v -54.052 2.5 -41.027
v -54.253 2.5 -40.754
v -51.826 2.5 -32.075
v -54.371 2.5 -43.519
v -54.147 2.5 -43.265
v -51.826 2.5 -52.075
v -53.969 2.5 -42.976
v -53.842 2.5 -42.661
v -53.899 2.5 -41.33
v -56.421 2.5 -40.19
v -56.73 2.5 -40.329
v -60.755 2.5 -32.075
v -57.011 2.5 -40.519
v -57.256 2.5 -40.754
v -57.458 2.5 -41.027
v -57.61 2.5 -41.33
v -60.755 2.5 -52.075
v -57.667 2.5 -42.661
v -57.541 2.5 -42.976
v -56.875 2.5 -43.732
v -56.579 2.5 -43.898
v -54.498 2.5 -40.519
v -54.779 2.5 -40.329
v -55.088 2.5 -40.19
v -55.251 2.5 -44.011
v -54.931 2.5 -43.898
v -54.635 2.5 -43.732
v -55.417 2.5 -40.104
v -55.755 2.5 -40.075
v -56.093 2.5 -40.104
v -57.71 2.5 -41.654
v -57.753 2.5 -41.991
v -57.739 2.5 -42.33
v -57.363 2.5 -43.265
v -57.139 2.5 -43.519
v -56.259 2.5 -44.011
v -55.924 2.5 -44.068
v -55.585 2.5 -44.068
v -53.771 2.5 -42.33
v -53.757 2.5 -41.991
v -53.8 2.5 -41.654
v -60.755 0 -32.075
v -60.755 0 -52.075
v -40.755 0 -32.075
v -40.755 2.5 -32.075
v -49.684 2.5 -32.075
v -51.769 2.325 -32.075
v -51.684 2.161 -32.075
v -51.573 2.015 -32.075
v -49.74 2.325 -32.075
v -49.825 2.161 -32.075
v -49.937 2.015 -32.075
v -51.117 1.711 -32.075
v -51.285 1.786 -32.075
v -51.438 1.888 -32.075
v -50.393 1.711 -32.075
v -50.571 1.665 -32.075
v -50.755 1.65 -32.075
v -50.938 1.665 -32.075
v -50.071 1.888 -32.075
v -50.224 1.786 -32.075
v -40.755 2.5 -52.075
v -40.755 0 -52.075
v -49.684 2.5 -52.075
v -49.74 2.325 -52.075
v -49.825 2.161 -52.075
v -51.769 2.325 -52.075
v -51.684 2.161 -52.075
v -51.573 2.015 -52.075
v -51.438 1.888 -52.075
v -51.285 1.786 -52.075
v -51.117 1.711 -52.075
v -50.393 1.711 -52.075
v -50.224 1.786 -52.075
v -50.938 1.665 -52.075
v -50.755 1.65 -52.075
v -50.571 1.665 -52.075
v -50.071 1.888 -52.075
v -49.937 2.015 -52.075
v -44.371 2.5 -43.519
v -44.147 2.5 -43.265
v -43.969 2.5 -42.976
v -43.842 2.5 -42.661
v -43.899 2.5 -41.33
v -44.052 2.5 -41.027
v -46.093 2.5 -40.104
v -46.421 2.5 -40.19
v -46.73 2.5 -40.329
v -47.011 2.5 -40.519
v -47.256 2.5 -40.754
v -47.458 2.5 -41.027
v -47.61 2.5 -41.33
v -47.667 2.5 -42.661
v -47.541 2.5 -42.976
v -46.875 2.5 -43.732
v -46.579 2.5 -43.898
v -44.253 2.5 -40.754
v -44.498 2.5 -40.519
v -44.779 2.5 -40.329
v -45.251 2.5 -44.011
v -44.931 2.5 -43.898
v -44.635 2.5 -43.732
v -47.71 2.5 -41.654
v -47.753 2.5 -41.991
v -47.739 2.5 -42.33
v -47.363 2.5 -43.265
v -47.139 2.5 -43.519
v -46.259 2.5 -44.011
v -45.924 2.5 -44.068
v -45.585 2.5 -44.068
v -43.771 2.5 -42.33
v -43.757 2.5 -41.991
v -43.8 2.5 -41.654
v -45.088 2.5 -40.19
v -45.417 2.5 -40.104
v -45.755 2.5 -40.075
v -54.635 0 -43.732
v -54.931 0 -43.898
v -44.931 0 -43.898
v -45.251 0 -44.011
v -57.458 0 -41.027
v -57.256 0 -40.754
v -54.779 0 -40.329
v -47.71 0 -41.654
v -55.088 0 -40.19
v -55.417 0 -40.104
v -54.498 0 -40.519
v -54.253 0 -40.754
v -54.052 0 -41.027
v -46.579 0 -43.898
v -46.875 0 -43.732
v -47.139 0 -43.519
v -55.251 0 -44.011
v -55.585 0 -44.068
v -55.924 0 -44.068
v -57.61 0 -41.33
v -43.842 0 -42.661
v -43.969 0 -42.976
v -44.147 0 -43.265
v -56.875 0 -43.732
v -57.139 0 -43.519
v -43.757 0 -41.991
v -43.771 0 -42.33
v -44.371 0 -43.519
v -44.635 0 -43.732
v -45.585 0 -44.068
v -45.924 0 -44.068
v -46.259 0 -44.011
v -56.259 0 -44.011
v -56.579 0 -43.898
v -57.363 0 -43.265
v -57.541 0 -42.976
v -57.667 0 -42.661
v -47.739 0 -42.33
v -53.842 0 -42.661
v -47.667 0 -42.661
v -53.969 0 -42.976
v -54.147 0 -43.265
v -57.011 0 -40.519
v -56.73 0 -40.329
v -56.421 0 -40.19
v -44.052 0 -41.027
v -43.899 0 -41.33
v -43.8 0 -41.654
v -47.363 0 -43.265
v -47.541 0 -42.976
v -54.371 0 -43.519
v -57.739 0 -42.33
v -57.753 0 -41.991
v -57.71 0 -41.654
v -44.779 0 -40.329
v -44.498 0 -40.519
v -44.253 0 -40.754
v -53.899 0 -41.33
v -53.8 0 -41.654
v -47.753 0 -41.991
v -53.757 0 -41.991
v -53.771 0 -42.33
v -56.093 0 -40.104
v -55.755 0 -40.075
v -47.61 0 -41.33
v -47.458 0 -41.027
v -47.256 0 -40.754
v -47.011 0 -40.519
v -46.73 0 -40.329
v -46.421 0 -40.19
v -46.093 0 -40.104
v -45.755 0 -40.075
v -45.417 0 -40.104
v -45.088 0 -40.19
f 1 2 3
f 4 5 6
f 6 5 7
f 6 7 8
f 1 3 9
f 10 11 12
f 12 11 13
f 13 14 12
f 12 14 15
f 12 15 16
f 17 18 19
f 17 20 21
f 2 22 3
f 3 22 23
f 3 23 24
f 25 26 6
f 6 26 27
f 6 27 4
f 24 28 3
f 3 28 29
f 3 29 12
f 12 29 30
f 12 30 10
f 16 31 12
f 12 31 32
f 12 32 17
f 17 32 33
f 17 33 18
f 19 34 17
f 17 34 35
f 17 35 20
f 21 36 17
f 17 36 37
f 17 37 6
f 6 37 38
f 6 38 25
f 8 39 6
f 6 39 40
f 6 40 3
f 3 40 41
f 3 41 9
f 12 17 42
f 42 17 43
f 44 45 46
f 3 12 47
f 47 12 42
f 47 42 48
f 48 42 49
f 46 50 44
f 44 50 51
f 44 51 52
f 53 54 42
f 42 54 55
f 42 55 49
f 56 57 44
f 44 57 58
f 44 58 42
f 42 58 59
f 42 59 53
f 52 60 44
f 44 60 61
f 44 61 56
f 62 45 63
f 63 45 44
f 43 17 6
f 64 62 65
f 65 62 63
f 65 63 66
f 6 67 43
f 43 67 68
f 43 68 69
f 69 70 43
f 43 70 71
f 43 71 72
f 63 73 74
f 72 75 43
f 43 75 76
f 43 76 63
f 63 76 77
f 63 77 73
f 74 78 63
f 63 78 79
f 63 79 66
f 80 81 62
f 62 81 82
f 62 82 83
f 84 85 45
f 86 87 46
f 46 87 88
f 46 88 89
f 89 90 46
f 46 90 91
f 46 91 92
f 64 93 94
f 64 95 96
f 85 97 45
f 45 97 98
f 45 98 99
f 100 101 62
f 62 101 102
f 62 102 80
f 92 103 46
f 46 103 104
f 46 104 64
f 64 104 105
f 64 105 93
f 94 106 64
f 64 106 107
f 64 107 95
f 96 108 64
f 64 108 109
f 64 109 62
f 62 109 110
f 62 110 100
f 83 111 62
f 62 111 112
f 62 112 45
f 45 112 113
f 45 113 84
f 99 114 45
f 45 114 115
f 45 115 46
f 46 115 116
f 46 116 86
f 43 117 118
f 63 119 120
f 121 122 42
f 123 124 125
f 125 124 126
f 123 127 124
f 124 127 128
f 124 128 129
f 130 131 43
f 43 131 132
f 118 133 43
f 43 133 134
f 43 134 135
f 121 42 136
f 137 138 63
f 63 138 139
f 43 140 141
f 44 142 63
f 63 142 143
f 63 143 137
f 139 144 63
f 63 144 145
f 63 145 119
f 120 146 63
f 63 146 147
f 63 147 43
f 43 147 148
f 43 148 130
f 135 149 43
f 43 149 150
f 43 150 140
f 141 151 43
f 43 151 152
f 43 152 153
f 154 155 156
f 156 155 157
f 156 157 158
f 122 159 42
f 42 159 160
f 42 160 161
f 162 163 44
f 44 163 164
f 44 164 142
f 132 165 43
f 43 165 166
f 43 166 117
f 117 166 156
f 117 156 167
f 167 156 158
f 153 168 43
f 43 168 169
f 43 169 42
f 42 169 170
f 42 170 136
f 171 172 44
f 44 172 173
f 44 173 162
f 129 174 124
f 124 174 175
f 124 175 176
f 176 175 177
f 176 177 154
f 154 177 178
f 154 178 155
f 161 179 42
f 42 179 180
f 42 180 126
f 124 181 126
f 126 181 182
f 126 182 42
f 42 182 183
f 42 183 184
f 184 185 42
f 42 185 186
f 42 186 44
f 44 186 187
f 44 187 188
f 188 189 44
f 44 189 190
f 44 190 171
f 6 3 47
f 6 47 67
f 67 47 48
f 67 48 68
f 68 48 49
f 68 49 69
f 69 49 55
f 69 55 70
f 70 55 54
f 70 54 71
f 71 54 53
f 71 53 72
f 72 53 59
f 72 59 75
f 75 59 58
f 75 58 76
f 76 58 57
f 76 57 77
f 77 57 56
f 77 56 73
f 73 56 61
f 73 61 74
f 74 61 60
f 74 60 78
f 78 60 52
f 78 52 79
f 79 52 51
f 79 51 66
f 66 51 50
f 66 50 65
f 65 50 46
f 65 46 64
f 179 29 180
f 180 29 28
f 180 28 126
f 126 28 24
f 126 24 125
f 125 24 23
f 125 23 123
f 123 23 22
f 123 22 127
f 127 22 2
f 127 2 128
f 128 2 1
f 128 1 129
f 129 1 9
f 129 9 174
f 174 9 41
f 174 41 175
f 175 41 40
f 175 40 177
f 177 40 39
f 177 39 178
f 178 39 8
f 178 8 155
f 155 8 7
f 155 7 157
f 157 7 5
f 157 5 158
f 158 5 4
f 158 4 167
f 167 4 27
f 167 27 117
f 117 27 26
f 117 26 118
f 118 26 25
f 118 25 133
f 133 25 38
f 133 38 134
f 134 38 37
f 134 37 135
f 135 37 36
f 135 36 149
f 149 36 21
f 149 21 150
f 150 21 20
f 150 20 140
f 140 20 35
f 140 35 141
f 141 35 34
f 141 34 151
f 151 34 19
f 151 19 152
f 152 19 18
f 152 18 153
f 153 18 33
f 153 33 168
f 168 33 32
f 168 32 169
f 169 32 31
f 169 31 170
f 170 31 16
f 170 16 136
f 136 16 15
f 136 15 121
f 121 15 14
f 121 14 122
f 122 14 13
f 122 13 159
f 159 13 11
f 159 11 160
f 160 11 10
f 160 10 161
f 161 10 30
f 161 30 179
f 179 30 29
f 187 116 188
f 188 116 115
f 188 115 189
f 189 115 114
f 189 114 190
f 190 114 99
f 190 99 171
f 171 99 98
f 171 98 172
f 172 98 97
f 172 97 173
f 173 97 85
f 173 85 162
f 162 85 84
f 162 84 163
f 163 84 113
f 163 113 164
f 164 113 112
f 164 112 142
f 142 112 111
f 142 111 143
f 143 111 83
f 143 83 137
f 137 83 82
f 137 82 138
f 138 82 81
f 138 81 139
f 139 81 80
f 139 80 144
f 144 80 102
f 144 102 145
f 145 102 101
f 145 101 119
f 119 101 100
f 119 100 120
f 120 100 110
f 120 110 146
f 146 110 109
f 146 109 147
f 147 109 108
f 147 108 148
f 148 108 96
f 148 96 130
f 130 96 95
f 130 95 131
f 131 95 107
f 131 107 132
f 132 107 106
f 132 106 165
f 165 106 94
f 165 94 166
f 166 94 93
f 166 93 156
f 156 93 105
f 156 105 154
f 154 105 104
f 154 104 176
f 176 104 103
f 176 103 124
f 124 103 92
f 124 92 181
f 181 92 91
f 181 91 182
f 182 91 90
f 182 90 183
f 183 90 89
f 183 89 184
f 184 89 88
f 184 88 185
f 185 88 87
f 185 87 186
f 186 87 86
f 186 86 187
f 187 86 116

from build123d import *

# Parameters (mm, degrees)
SKETCH1_W           = 20
SKETCH1_H           = 20
BOSS_EXTRUDE1_DEPTH = 2.5
SKETCH2_R           = 1.1
CUT_EXTRUDE1_DEPTH  = 21
SKETCH3_R           = 2
CUT_EXTRUDE2_DEPTH  = 3.5


with BuildPart() as part:
    # Sketch1 → Boss-Extrude1 (new body)
    with BuildSketch(Plane(origin=(0, 0, 0), x_dir=(1, 0, 0), z_dir=(0, 1, 0))):
        with Locations((-50.754716981, 42.075471698)):
            Rectangle(SKETCH1_W, SKETCH1_H)
    extrude(amount=BOSS_EXTRUDE1_DEPTH)

    # Sketch2 → Cut-Extrude1 (cut, through all)
    with BuildSketch(Plane.XY.offset(-32.075471698)):
        with Locations((-50.754716981, 2.75)):
            Circle(SKETCH2_R)
    extrude(amount=-CUT_EXTRUDE1_DEPTH, mode=Mode.SUBTRACT)

    # Sketch3 → Cut-Extrude2 (cut, through all)
    with BuildSketch(Plane(origin=(0, 2.5, 0), x_dir=(1, 0, 0), z_dir=(0, 1, 0))):
        with Locations((-55.754716981, 42.075471698)):
            Circle(SKETCH3_R)
        with Locations((-45.754716981, 42.075471698)):
            Circle(SKETCH3_R)
    extrude(amount=-CUT_EXTRUDE2_DEPTH, mode=Mode.SUBTRACT)


solid = part.part
